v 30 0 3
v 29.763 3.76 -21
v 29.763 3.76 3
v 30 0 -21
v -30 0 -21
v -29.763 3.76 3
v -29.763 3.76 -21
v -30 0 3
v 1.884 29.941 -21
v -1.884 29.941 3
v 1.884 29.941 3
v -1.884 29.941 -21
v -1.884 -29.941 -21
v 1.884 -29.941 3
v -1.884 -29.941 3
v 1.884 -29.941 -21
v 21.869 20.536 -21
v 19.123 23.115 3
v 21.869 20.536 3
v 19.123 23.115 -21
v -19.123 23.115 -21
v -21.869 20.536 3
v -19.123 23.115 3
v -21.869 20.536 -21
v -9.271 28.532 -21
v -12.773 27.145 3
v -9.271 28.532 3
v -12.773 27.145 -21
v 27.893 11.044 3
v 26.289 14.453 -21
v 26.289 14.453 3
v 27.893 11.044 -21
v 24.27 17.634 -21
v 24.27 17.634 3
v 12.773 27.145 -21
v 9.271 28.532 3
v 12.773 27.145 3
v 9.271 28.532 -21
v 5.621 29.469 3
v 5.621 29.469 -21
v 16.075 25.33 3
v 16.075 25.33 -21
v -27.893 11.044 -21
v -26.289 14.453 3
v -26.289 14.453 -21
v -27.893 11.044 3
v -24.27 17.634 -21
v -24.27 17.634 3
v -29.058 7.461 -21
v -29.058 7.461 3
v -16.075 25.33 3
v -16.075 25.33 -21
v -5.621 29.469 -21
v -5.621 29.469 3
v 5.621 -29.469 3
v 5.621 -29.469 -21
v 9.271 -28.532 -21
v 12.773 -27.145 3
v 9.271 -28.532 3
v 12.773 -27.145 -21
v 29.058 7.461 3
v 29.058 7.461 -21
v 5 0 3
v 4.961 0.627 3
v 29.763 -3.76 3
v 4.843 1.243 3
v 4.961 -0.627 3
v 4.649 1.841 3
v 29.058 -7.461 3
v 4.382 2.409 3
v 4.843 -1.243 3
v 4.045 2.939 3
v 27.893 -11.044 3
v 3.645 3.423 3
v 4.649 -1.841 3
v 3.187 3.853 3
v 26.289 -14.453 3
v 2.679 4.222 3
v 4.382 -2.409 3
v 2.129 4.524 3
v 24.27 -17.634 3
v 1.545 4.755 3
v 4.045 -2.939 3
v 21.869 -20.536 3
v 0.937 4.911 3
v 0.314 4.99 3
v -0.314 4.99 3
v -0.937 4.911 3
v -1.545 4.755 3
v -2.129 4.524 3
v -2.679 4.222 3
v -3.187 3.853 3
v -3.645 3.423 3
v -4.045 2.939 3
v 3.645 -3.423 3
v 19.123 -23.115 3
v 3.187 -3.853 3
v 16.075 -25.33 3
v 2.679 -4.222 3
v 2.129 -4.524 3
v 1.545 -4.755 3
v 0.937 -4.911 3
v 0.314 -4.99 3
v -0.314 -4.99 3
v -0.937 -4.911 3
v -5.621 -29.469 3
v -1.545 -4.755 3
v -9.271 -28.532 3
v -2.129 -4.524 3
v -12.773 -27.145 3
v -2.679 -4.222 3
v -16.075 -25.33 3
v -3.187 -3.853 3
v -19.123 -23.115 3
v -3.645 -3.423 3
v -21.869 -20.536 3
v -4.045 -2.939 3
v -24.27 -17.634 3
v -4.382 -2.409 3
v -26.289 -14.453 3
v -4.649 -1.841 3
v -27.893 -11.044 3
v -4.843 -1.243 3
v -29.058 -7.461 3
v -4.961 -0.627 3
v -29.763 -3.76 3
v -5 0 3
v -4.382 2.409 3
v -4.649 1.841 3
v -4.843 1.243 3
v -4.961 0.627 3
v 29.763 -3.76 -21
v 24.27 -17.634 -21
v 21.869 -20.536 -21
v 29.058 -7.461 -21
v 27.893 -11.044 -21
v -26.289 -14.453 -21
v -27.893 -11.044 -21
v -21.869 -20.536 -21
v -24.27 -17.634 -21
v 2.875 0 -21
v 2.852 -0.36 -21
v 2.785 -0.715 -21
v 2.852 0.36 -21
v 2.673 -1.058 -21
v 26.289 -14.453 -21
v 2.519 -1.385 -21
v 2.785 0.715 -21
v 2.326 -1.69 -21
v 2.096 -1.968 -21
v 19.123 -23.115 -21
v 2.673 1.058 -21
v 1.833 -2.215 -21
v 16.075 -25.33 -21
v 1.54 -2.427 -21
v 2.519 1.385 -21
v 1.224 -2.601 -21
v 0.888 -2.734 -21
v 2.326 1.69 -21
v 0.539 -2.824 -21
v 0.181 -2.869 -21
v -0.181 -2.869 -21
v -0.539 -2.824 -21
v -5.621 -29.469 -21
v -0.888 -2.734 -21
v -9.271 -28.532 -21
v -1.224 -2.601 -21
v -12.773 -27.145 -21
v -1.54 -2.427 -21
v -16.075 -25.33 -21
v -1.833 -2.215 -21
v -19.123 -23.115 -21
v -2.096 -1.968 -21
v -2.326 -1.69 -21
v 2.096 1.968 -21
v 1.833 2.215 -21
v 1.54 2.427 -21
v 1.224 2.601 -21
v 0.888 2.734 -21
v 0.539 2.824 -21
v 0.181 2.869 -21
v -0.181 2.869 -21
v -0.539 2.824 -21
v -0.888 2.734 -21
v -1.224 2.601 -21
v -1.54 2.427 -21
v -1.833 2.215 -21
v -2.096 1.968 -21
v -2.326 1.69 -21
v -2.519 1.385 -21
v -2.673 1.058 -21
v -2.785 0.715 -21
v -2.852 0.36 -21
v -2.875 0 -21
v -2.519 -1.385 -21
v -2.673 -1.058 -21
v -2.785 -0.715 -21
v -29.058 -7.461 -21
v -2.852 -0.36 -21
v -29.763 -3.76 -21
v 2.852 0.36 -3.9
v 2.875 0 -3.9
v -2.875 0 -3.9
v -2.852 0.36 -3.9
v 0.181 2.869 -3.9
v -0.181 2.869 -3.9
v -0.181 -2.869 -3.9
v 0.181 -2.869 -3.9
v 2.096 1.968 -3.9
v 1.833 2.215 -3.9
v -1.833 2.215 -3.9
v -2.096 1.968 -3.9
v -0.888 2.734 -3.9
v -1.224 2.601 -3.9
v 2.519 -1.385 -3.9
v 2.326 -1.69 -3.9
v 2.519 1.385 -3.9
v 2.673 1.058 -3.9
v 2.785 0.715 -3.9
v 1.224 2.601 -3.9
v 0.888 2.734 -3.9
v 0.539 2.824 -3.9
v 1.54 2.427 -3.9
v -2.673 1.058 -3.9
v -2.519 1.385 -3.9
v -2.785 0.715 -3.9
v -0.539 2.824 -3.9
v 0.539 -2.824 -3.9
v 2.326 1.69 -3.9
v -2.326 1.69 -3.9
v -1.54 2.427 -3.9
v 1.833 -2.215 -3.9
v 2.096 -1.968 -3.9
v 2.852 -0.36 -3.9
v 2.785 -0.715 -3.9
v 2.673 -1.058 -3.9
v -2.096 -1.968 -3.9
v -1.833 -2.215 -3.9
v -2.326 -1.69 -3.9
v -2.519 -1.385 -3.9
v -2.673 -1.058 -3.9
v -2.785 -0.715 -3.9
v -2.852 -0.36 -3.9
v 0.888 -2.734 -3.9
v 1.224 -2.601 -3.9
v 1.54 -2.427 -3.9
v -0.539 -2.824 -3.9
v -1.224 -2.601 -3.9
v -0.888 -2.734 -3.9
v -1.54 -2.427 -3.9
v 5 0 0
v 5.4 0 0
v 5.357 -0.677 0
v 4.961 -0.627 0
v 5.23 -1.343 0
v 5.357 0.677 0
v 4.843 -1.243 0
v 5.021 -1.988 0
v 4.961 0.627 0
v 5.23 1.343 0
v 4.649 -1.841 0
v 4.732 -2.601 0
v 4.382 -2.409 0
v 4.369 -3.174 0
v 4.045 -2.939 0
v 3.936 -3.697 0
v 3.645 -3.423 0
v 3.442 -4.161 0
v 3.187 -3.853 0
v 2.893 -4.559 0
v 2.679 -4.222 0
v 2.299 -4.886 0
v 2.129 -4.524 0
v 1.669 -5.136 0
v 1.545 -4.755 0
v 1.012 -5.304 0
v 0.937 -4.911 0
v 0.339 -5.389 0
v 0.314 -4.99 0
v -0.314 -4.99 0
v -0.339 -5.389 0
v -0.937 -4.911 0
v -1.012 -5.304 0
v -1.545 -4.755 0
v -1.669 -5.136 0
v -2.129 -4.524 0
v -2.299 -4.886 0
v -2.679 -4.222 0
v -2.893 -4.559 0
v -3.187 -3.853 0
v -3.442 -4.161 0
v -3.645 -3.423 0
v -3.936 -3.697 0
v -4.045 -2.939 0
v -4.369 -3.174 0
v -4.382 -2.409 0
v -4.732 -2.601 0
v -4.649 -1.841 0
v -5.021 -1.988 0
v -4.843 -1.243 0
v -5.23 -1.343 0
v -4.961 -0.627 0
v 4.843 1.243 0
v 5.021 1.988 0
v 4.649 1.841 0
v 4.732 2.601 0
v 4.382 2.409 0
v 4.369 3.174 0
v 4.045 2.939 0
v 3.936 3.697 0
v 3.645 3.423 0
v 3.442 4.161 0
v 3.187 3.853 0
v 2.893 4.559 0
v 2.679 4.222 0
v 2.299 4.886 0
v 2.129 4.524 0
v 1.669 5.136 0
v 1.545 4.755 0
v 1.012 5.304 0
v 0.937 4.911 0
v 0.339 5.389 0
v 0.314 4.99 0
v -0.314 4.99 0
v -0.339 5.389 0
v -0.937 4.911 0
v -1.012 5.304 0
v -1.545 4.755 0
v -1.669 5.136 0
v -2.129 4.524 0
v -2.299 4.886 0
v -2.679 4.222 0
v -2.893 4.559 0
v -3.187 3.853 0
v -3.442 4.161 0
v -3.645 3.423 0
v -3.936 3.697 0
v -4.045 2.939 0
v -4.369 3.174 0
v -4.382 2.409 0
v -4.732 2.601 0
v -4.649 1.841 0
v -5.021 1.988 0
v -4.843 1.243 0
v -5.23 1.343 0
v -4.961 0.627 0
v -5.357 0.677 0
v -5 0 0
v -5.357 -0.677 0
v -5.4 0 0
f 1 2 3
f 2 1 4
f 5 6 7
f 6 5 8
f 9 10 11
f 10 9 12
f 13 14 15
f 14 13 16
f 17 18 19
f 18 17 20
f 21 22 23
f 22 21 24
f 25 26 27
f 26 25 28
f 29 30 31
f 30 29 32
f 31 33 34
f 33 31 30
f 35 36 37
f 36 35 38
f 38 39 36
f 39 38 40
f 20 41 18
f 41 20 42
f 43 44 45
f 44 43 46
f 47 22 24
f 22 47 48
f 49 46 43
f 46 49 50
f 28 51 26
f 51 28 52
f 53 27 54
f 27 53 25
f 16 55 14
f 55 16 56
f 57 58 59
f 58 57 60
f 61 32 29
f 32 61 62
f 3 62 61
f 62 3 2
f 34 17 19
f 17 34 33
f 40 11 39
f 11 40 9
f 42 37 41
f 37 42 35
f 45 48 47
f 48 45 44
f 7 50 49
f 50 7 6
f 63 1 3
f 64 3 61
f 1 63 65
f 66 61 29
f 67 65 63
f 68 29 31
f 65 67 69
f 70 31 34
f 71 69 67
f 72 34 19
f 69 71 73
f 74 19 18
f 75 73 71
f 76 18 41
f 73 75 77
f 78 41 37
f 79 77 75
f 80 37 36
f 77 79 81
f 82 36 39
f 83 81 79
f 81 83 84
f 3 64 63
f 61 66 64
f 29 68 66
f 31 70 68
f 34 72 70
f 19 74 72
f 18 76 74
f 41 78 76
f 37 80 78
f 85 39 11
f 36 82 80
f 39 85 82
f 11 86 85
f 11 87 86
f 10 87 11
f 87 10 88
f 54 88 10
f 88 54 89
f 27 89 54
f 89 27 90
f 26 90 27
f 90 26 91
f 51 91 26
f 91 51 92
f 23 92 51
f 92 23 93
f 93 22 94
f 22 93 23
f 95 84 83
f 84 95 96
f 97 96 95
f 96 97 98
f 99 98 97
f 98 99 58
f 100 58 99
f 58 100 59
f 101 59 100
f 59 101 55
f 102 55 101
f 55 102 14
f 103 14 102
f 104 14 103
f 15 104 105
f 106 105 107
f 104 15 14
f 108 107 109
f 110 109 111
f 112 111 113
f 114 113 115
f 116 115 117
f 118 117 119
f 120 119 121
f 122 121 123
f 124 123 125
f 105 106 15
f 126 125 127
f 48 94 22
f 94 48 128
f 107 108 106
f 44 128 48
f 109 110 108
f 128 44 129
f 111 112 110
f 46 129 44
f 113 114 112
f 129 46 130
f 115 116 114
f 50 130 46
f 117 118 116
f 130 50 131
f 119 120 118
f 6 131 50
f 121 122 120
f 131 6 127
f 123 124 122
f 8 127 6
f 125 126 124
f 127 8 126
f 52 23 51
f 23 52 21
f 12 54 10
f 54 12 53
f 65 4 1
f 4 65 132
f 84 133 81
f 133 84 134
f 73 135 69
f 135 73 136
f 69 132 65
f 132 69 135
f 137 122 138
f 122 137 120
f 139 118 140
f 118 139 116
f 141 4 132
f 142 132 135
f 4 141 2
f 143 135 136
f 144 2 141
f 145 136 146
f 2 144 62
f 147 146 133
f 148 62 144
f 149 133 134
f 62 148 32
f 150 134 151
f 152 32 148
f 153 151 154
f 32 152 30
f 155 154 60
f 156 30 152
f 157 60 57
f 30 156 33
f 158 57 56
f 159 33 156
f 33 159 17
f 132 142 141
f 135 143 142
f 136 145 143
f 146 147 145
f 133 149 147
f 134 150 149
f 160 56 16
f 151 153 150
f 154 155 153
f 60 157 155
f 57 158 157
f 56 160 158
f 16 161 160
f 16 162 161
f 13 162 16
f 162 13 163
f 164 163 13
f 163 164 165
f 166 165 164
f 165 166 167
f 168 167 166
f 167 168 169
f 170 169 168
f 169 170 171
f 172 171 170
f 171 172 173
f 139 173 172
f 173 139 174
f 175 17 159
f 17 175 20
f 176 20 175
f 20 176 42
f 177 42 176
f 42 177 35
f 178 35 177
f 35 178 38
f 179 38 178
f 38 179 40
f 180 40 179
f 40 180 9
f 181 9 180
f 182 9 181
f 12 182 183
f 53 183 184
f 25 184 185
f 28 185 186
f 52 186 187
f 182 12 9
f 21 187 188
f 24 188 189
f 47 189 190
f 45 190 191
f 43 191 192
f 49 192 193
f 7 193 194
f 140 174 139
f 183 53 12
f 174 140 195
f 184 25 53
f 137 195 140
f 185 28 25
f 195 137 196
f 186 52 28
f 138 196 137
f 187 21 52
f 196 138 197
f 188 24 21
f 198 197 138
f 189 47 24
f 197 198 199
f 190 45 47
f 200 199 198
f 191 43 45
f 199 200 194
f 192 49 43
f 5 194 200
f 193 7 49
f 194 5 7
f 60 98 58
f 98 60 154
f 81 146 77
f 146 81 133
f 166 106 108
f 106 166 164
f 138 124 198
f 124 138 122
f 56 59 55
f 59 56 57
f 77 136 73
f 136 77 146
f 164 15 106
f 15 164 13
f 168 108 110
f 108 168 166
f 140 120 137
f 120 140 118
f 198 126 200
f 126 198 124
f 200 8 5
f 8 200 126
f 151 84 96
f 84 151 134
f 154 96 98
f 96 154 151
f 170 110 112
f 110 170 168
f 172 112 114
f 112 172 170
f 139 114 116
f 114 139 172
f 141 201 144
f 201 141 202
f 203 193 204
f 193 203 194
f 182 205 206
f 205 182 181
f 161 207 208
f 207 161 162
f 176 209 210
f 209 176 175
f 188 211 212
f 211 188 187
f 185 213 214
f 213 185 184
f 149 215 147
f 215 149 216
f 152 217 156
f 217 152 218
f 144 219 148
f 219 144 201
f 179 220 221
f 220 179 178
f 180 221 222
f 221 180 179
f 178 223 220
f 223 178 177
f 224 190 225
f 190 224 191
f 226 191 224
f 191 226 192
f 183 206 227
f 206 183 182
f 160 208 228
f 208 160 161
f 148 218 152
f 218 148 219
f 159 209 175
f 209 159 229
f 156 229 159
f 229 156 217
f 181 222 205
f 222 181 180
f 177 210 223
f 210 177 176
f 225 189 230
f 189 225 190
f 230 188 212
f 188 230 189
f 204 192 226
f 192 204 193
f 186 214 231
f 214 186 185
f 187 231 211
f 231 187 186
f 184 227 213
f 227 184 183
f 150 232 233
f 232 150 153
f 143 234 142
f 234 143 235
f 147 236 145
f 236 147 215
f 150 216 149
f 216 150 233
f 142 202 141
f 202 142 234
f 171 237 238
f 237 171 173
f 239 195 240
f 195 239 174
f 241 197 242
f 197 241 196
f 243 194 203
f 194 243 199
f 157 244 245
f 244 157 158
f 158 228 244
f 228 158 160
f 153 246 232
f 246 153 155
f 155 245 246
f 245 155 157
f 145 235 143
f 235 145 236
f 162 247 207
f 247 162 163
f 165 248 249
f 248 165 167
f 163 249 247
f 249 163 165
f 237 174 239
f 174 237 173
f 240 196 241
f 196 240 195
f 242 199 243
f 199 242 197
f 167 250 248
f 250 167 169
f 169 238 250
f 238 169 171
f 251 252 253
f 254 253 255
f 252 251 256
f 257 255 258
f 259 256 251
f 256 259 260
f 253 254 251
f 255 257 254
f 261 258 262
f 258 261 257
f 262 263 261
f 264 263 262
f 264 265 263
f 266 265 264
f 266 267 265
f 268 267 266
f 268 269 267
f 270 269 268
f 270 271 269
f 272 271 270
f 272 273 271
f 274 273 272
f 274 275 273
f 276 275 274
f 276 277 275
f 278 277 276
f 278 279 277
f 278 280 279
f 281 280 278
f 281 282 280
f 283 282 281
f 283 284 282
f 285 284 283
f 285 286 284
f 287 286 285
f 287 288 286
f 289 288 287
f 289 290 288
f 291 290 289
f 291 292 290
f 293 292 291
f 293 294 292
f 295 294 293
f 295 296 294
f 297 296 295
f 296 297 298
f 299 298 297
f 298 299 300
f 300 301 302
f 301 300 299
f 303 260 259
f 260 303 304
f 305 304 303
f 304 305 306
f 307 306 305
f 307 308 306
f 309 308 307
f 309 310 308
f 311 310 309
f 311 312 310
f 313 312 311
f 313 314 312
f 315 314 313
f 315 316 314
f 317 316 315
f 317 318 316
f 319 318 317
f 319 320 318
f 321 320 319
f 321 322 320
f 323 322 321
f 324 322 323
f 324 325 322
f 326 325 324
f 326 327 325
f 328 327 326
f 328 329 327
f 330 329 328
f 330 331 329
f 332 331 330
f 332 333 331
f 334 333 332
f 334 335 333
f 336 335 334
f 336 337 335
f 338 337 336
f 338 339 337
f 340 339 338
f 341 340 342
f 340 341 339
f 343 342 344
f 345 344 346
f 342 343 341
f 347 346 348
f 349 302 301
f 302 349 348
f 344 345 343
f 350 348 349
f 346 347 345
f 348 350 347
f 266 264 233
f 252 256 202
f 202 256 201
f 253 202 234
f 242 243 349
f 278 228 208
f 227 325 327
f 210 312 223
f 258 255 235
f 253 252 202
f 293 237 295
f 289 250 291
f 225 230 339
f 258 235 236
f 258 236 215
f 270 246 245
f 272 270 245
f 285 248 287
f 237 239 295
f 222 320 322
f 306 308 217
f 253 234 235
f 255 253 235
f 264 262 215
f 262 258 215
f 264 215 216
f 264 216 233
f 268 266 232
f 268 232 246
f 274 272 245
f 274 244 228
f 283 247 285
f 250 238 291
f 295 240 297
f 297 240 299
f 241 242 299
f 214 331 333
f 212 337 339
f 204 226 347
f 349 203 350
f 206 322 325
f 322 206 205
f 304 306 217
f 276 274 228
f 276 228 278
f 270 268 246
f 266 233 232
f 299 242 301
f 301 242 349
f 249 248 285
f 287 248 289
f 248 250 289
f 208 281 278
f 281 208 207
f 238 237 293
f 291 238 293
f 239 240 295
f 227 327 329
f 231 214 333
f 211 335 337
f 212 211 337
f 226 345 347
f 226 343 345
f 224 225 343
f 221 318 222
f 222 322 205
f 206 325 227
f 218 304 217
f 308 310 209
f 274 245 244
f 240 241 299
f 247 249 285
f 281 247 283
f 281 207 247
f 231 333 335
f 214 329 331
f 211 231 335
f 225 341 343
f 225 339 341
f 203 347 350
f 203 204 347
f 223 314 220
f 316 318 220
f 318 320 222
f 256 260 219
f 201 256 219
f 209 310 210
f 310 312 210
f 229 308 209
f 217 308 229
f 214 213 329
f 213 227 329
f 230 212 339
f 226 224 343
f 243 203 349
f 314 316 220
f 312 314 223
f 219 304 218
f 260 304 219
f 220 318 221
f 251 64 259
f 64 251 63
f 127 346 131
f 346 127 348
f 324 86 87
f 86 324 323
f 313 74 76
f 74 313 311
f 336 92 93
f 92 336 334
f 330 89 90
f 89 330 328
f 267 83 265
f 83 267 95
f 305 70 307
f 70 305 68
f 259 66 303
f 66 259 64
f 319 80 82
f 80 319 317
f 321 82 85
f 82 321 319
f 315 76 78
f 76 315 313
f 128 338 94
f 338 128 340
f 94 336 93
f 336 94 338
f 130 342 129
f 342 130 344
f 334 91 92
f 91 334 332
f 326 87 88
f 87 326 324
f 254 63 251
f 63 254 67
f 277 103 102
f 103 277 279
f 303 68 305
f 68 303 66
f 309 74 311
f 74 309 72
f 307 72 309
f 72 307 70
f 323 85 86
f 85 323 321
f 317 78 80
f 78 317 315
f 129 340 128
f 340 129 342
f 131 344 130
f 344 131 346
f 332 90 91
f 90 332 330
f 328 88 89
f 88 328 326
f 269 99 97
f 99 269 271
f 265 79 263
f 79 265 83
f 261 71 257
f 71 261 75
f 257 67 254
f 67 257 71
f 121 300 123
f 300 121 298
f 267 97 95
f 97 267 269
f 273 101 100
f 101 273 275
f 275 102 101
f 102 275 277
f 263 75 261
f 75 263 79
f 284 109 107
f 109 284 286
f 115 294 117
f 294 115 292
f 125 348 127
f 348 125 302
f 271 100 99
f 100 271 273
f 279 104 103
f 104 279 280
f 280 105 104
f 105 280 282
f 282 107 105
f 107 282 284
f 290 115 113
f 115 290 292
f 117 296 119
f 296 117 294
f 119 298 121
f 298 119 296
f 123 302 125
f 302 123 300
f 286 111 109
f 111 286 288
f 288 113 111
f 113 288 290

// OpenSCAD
$fn = 50;

difference() {
	union() {
		translate(v = [0, 0, -21.0]) {
			cylinder(h = 24, r = 30.0);
		}
	}
	union() {
		translate(v = [0, 0, 0]) {
			rotate(a = [0, 0, 0]) {
				difference() {
					union() {
						translate(v = [0, 0, -24.0]) {
							cylinder(h = 24, r = 2.6);
						}
						translate(v = [0, 0, -3.9]) {
							cylinder(h = 3.9, r1 = 2.875, r2 = 5.4);
						}
						translate(v = [0, 0, -24.0]) {
							cylinder(h = 24, r = 2.875);
						}
						translate(v = [0, 0, -24.0]) {
							cylinder(h = 24, r = 2.6);
						}
					}
					union();
				}
			}
		}
		#cylinder(h = 3, r = 5.0);
	}
}
